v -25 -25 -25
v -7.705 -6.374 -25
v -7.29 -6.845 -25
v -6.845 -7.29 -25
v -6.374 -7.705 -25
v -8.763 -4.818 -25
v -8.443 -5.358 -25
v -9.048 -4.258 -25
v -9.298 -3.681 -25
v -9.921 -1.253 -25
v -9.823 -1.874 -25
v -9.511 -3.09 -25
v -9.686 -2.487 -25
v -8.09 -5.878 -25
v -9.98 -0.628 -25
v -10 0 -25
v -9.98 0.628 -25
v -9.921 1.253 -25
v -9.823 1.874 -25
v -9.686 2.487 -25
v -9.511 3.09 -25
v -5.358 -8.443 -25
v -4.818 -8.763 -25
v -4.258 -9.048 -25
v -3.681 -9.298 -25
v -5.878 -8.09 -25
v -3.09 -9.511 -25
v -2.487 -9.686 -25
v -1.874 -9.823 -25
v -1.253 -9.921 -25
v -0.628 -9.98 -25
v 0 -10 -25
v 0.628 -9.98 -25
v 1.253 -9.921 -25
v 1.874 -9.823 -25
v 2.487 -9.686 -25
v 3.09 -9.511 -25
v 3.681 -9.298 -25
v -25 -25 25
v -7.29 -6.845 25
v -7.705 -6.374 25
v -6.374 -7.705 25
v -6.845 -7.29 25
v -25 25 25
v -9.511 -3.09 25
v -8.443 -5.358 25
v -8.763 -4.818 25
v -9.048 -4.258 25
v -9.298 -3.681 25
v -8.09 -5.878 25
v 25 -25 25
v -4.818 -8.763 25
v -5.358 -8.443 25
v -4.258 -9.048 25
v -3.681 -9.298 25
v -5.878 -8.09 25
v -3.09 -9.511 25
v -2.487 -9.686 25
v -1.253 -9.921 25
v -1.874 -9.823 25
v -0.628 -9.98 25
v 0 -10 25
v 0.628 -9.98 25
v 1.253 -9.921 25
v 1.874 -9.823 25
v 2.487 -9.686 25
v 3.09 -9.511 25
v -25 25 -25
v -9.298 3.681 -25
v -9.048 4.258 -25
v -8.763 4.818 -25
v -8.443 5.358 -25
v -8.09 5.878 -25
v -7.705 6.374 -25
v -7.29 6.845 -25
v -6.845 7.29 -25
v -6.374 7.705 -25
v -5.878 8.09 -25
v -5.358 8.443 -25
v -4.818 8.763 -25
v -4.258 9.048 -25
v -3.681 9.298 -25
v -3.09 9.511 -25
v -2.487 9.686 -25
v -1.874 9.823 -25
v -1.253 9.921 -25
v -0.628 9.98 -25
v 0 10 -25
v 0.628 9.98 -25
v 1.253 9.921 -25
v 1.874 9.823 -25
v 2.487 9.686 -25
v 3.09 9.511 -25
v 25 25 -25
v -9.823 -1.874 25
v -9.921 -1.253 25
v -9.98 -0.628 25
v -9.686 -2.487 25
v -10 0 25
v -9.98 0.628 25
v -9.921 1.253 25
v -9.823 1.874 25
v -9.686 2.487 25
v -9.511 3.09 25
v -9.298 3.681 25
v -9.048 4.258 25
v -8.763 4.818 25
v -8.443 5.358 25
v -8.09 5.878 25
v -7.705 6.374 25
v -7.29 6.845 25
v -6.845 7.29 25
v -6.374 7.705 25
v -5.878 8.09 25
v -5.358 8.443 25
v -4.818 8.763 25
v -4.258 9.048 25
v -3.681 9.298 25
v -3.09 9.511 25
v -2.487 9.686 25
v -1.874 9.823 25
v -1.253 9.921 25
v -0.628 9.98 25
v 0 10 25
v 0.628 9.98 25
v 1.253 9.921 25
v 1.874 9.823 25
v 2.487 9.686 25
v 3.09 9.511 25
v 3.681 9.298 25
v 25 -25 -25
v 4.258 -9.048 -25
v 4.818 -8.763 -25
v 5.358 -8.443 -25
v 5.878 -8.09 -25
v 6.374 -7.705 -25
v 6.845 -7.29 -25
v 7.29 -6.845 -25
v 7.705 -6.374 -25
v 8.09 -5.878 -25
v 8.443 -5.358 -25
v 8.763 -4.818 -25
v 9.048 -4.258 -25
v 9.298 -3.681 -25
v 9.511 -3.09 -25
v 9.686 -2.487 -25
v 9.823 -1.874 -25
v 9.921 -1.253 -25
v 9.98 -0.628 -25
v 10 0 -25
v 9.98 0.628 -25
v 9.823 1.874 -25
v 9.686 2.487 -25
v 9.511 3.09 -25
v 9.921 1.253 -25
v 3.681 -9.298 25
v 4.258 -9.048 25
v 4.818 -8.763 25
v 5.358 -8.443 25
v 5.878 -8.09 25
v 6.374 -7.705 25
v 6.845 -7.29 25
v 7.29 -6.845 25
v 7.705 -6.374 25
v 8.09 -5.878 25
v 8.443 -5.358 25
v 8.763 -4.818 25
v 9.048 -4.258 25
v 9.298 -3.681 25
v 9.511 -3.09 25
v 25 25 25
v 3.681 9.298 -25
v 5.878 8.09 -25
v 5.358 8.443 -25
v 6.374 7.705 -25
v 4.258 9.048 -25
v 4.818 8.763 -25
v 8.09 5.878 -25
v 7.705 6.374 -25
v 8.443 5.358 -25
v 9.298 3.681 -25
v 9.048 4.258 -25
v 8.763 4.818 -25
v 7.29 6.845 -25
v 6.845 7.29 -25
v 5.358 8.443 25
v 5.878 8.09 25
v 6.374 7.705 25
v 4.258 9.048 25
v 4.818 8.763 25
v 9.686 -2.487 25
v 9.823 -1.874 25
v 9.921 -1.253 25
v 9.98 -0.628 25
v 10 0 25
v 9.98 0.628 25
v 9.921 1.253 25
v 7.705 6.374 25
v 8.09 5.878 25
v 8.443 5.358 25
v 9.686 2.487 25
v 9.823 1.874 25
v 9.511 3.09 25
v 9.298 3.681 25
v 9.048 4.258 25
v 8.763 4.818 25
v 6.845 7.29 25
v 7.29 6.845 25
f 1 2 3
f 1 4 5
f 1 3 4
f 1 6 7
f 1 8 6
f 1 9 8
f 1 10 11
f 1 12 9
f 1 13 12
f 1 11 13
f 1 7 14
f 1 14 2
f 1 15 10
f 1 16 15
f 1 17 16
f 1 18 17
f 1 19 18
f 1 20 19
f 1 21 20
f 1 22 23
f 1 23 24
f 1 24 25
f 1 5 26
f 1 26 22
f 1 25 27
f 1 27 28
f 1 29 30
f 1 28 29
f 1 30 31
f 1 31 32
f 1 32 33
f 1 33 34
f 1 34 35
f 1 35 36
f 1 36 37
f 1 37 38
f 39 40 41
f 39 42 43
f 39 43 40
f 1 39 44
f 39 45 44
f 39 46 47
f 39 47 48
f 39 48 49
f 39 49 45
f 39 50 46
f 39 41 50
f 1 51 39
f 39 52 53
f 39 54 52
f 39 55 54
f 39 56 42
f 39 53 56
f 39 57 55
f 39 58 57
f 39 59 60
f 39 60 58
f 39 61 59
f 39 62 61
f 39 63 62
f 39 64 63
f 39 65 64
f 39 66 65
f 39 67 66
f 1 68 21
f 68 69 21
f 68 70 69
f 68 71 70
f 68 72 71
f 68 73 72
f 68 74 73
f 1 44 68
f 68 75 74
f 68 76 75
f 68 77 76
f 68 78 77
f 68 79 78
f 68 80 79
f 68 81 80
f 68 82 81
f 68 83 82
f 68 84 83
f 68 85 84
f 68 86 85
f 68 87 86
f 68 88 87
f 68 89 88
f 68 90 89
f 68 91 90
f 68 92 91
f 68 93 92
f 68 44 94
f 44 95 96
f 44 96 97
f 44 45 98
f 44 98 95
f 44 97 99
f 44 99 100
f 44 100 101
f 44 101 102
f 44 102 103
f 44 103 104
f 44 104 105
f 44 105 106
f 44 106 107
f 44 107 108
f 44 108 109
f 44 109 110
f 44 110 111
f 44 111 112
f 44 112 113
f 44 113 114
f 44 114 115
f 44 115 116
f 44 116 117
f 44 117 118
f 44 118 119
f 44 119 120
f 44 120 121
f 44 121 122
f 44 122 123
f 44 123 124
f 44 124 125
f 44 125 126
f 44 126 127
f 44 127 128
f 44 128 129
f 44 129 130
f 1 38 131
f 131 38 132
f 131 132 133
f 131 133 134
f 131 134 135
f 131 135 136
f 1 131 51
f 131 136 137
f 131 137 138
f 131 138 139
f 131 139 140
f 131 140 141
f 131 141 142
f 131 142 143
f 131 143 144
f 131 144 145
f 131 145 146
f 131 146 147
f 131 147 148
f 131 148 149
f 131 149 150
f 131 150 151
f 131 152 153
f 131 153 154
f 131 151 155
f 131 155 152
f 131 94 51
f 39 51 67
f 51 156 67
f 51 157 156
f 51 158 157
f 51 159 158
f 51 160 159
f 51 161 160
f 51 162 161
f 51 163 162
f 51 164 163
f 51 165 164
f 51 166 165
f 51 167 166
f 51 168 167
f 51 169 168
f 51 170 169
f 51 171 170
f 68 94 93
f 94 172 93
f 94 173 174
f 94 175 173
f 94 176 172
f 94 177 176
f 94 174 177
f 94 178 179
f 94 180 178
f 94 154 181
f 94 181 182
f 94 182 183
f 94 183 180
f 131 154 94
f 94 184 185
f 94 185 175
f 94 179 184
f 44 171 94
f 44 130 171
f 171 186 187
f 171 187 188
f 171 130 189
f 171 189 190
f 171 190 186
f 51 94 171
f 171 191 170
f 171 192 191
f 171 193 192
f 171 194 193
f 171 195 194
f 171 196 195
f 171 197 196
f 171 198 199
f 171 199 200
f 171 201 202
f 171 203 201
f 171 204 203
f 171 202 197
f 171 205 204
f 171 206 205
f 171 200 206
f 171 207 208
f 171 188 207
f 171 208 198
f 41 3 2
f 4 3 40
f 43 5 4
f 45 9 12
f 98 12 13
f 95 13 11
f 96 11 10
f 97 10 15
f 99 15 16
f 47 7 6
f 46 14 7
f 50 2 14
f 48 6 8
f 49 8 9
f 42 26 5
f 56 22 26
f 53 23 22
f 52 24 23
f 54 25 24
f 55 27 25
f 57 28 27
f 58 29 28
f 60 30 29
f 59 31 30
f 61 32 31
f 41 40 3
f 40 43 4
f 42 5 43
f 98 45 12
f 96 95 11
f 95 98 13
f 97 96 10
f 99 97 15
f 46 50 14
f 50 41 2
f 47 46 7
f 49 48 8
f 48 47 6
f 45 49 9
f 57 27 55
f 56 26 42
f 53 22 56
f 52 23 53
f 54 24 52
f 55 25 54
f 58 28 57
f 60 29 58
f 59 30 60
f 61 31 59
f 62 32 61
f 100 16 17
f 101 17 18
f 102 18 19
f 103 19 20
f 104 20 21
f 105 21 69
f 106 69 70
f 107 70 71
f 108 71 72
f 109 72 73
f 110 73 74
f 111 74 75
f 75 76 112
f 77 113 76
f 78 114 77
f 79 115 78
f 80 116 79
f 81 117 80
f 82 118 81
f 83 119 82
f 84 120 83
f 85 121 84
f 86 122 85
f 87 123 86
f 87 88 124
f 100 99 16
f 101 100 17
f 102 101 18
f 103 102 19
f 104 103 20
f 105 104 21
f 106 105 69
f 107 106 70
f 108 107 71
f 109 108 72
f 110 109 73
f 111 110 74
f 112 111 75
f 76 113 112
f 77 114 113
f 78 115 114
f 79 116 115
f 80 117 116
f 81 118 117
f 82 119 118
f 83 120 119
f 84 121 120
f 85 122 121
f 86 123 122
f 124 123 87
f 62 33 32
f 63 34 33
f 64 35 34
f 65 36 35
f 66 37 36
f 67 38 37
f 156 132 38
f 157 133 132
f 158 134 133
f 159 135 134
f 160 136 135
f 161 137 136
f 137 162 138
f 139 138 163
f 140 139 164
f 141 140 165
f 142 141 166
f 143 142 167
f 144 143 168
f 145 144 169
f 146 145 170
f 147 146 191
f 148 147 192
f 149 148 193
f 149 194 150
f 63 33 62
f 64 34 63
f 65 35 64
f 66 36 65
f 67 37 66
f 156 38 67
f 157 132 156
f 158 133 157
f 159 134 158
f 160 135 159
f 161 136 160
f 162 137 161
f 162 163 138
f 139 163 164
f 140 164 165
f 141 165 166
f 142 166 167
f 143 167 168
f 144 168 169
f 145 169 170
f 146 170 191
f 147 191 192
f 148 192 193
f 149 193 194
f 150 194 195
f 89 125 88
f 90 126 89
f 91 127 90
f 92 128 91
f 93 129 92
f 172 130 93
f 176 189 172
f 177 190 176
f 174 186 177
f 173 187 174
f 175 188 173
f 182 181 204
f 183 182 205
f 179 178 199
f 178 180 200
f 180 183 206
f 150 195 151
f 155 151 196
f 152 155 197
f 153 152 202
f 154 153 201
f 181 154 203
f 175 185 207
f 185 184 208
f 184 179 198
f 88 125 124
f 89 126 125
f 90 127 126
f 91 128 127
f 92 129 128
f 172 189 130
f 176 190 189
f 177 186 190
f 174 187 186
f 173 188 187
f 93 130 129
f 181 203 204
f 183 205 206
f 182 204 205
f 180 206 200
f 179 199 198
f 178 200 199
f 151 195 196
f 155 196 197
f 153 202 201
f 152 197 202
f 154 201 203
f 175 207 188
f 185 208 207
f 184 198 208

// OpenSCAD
// 50mm角の立方体に、中央をZ軸方向に貫通する直径20mmの穴を開けたモデル

$fn = 100;

cube_size = 50;
hole_d = 20;

difference() {
    // 50mm角の立方体（原点を中心に配置）
    cube([cube_size, cube_size, cube_size], center = true);

    // 中央をZ軸方向に貫通する穴（余裕を持たせて長めにする）
    cylinder(h = cube_size + 2, d = hole_d, center = true);
}
